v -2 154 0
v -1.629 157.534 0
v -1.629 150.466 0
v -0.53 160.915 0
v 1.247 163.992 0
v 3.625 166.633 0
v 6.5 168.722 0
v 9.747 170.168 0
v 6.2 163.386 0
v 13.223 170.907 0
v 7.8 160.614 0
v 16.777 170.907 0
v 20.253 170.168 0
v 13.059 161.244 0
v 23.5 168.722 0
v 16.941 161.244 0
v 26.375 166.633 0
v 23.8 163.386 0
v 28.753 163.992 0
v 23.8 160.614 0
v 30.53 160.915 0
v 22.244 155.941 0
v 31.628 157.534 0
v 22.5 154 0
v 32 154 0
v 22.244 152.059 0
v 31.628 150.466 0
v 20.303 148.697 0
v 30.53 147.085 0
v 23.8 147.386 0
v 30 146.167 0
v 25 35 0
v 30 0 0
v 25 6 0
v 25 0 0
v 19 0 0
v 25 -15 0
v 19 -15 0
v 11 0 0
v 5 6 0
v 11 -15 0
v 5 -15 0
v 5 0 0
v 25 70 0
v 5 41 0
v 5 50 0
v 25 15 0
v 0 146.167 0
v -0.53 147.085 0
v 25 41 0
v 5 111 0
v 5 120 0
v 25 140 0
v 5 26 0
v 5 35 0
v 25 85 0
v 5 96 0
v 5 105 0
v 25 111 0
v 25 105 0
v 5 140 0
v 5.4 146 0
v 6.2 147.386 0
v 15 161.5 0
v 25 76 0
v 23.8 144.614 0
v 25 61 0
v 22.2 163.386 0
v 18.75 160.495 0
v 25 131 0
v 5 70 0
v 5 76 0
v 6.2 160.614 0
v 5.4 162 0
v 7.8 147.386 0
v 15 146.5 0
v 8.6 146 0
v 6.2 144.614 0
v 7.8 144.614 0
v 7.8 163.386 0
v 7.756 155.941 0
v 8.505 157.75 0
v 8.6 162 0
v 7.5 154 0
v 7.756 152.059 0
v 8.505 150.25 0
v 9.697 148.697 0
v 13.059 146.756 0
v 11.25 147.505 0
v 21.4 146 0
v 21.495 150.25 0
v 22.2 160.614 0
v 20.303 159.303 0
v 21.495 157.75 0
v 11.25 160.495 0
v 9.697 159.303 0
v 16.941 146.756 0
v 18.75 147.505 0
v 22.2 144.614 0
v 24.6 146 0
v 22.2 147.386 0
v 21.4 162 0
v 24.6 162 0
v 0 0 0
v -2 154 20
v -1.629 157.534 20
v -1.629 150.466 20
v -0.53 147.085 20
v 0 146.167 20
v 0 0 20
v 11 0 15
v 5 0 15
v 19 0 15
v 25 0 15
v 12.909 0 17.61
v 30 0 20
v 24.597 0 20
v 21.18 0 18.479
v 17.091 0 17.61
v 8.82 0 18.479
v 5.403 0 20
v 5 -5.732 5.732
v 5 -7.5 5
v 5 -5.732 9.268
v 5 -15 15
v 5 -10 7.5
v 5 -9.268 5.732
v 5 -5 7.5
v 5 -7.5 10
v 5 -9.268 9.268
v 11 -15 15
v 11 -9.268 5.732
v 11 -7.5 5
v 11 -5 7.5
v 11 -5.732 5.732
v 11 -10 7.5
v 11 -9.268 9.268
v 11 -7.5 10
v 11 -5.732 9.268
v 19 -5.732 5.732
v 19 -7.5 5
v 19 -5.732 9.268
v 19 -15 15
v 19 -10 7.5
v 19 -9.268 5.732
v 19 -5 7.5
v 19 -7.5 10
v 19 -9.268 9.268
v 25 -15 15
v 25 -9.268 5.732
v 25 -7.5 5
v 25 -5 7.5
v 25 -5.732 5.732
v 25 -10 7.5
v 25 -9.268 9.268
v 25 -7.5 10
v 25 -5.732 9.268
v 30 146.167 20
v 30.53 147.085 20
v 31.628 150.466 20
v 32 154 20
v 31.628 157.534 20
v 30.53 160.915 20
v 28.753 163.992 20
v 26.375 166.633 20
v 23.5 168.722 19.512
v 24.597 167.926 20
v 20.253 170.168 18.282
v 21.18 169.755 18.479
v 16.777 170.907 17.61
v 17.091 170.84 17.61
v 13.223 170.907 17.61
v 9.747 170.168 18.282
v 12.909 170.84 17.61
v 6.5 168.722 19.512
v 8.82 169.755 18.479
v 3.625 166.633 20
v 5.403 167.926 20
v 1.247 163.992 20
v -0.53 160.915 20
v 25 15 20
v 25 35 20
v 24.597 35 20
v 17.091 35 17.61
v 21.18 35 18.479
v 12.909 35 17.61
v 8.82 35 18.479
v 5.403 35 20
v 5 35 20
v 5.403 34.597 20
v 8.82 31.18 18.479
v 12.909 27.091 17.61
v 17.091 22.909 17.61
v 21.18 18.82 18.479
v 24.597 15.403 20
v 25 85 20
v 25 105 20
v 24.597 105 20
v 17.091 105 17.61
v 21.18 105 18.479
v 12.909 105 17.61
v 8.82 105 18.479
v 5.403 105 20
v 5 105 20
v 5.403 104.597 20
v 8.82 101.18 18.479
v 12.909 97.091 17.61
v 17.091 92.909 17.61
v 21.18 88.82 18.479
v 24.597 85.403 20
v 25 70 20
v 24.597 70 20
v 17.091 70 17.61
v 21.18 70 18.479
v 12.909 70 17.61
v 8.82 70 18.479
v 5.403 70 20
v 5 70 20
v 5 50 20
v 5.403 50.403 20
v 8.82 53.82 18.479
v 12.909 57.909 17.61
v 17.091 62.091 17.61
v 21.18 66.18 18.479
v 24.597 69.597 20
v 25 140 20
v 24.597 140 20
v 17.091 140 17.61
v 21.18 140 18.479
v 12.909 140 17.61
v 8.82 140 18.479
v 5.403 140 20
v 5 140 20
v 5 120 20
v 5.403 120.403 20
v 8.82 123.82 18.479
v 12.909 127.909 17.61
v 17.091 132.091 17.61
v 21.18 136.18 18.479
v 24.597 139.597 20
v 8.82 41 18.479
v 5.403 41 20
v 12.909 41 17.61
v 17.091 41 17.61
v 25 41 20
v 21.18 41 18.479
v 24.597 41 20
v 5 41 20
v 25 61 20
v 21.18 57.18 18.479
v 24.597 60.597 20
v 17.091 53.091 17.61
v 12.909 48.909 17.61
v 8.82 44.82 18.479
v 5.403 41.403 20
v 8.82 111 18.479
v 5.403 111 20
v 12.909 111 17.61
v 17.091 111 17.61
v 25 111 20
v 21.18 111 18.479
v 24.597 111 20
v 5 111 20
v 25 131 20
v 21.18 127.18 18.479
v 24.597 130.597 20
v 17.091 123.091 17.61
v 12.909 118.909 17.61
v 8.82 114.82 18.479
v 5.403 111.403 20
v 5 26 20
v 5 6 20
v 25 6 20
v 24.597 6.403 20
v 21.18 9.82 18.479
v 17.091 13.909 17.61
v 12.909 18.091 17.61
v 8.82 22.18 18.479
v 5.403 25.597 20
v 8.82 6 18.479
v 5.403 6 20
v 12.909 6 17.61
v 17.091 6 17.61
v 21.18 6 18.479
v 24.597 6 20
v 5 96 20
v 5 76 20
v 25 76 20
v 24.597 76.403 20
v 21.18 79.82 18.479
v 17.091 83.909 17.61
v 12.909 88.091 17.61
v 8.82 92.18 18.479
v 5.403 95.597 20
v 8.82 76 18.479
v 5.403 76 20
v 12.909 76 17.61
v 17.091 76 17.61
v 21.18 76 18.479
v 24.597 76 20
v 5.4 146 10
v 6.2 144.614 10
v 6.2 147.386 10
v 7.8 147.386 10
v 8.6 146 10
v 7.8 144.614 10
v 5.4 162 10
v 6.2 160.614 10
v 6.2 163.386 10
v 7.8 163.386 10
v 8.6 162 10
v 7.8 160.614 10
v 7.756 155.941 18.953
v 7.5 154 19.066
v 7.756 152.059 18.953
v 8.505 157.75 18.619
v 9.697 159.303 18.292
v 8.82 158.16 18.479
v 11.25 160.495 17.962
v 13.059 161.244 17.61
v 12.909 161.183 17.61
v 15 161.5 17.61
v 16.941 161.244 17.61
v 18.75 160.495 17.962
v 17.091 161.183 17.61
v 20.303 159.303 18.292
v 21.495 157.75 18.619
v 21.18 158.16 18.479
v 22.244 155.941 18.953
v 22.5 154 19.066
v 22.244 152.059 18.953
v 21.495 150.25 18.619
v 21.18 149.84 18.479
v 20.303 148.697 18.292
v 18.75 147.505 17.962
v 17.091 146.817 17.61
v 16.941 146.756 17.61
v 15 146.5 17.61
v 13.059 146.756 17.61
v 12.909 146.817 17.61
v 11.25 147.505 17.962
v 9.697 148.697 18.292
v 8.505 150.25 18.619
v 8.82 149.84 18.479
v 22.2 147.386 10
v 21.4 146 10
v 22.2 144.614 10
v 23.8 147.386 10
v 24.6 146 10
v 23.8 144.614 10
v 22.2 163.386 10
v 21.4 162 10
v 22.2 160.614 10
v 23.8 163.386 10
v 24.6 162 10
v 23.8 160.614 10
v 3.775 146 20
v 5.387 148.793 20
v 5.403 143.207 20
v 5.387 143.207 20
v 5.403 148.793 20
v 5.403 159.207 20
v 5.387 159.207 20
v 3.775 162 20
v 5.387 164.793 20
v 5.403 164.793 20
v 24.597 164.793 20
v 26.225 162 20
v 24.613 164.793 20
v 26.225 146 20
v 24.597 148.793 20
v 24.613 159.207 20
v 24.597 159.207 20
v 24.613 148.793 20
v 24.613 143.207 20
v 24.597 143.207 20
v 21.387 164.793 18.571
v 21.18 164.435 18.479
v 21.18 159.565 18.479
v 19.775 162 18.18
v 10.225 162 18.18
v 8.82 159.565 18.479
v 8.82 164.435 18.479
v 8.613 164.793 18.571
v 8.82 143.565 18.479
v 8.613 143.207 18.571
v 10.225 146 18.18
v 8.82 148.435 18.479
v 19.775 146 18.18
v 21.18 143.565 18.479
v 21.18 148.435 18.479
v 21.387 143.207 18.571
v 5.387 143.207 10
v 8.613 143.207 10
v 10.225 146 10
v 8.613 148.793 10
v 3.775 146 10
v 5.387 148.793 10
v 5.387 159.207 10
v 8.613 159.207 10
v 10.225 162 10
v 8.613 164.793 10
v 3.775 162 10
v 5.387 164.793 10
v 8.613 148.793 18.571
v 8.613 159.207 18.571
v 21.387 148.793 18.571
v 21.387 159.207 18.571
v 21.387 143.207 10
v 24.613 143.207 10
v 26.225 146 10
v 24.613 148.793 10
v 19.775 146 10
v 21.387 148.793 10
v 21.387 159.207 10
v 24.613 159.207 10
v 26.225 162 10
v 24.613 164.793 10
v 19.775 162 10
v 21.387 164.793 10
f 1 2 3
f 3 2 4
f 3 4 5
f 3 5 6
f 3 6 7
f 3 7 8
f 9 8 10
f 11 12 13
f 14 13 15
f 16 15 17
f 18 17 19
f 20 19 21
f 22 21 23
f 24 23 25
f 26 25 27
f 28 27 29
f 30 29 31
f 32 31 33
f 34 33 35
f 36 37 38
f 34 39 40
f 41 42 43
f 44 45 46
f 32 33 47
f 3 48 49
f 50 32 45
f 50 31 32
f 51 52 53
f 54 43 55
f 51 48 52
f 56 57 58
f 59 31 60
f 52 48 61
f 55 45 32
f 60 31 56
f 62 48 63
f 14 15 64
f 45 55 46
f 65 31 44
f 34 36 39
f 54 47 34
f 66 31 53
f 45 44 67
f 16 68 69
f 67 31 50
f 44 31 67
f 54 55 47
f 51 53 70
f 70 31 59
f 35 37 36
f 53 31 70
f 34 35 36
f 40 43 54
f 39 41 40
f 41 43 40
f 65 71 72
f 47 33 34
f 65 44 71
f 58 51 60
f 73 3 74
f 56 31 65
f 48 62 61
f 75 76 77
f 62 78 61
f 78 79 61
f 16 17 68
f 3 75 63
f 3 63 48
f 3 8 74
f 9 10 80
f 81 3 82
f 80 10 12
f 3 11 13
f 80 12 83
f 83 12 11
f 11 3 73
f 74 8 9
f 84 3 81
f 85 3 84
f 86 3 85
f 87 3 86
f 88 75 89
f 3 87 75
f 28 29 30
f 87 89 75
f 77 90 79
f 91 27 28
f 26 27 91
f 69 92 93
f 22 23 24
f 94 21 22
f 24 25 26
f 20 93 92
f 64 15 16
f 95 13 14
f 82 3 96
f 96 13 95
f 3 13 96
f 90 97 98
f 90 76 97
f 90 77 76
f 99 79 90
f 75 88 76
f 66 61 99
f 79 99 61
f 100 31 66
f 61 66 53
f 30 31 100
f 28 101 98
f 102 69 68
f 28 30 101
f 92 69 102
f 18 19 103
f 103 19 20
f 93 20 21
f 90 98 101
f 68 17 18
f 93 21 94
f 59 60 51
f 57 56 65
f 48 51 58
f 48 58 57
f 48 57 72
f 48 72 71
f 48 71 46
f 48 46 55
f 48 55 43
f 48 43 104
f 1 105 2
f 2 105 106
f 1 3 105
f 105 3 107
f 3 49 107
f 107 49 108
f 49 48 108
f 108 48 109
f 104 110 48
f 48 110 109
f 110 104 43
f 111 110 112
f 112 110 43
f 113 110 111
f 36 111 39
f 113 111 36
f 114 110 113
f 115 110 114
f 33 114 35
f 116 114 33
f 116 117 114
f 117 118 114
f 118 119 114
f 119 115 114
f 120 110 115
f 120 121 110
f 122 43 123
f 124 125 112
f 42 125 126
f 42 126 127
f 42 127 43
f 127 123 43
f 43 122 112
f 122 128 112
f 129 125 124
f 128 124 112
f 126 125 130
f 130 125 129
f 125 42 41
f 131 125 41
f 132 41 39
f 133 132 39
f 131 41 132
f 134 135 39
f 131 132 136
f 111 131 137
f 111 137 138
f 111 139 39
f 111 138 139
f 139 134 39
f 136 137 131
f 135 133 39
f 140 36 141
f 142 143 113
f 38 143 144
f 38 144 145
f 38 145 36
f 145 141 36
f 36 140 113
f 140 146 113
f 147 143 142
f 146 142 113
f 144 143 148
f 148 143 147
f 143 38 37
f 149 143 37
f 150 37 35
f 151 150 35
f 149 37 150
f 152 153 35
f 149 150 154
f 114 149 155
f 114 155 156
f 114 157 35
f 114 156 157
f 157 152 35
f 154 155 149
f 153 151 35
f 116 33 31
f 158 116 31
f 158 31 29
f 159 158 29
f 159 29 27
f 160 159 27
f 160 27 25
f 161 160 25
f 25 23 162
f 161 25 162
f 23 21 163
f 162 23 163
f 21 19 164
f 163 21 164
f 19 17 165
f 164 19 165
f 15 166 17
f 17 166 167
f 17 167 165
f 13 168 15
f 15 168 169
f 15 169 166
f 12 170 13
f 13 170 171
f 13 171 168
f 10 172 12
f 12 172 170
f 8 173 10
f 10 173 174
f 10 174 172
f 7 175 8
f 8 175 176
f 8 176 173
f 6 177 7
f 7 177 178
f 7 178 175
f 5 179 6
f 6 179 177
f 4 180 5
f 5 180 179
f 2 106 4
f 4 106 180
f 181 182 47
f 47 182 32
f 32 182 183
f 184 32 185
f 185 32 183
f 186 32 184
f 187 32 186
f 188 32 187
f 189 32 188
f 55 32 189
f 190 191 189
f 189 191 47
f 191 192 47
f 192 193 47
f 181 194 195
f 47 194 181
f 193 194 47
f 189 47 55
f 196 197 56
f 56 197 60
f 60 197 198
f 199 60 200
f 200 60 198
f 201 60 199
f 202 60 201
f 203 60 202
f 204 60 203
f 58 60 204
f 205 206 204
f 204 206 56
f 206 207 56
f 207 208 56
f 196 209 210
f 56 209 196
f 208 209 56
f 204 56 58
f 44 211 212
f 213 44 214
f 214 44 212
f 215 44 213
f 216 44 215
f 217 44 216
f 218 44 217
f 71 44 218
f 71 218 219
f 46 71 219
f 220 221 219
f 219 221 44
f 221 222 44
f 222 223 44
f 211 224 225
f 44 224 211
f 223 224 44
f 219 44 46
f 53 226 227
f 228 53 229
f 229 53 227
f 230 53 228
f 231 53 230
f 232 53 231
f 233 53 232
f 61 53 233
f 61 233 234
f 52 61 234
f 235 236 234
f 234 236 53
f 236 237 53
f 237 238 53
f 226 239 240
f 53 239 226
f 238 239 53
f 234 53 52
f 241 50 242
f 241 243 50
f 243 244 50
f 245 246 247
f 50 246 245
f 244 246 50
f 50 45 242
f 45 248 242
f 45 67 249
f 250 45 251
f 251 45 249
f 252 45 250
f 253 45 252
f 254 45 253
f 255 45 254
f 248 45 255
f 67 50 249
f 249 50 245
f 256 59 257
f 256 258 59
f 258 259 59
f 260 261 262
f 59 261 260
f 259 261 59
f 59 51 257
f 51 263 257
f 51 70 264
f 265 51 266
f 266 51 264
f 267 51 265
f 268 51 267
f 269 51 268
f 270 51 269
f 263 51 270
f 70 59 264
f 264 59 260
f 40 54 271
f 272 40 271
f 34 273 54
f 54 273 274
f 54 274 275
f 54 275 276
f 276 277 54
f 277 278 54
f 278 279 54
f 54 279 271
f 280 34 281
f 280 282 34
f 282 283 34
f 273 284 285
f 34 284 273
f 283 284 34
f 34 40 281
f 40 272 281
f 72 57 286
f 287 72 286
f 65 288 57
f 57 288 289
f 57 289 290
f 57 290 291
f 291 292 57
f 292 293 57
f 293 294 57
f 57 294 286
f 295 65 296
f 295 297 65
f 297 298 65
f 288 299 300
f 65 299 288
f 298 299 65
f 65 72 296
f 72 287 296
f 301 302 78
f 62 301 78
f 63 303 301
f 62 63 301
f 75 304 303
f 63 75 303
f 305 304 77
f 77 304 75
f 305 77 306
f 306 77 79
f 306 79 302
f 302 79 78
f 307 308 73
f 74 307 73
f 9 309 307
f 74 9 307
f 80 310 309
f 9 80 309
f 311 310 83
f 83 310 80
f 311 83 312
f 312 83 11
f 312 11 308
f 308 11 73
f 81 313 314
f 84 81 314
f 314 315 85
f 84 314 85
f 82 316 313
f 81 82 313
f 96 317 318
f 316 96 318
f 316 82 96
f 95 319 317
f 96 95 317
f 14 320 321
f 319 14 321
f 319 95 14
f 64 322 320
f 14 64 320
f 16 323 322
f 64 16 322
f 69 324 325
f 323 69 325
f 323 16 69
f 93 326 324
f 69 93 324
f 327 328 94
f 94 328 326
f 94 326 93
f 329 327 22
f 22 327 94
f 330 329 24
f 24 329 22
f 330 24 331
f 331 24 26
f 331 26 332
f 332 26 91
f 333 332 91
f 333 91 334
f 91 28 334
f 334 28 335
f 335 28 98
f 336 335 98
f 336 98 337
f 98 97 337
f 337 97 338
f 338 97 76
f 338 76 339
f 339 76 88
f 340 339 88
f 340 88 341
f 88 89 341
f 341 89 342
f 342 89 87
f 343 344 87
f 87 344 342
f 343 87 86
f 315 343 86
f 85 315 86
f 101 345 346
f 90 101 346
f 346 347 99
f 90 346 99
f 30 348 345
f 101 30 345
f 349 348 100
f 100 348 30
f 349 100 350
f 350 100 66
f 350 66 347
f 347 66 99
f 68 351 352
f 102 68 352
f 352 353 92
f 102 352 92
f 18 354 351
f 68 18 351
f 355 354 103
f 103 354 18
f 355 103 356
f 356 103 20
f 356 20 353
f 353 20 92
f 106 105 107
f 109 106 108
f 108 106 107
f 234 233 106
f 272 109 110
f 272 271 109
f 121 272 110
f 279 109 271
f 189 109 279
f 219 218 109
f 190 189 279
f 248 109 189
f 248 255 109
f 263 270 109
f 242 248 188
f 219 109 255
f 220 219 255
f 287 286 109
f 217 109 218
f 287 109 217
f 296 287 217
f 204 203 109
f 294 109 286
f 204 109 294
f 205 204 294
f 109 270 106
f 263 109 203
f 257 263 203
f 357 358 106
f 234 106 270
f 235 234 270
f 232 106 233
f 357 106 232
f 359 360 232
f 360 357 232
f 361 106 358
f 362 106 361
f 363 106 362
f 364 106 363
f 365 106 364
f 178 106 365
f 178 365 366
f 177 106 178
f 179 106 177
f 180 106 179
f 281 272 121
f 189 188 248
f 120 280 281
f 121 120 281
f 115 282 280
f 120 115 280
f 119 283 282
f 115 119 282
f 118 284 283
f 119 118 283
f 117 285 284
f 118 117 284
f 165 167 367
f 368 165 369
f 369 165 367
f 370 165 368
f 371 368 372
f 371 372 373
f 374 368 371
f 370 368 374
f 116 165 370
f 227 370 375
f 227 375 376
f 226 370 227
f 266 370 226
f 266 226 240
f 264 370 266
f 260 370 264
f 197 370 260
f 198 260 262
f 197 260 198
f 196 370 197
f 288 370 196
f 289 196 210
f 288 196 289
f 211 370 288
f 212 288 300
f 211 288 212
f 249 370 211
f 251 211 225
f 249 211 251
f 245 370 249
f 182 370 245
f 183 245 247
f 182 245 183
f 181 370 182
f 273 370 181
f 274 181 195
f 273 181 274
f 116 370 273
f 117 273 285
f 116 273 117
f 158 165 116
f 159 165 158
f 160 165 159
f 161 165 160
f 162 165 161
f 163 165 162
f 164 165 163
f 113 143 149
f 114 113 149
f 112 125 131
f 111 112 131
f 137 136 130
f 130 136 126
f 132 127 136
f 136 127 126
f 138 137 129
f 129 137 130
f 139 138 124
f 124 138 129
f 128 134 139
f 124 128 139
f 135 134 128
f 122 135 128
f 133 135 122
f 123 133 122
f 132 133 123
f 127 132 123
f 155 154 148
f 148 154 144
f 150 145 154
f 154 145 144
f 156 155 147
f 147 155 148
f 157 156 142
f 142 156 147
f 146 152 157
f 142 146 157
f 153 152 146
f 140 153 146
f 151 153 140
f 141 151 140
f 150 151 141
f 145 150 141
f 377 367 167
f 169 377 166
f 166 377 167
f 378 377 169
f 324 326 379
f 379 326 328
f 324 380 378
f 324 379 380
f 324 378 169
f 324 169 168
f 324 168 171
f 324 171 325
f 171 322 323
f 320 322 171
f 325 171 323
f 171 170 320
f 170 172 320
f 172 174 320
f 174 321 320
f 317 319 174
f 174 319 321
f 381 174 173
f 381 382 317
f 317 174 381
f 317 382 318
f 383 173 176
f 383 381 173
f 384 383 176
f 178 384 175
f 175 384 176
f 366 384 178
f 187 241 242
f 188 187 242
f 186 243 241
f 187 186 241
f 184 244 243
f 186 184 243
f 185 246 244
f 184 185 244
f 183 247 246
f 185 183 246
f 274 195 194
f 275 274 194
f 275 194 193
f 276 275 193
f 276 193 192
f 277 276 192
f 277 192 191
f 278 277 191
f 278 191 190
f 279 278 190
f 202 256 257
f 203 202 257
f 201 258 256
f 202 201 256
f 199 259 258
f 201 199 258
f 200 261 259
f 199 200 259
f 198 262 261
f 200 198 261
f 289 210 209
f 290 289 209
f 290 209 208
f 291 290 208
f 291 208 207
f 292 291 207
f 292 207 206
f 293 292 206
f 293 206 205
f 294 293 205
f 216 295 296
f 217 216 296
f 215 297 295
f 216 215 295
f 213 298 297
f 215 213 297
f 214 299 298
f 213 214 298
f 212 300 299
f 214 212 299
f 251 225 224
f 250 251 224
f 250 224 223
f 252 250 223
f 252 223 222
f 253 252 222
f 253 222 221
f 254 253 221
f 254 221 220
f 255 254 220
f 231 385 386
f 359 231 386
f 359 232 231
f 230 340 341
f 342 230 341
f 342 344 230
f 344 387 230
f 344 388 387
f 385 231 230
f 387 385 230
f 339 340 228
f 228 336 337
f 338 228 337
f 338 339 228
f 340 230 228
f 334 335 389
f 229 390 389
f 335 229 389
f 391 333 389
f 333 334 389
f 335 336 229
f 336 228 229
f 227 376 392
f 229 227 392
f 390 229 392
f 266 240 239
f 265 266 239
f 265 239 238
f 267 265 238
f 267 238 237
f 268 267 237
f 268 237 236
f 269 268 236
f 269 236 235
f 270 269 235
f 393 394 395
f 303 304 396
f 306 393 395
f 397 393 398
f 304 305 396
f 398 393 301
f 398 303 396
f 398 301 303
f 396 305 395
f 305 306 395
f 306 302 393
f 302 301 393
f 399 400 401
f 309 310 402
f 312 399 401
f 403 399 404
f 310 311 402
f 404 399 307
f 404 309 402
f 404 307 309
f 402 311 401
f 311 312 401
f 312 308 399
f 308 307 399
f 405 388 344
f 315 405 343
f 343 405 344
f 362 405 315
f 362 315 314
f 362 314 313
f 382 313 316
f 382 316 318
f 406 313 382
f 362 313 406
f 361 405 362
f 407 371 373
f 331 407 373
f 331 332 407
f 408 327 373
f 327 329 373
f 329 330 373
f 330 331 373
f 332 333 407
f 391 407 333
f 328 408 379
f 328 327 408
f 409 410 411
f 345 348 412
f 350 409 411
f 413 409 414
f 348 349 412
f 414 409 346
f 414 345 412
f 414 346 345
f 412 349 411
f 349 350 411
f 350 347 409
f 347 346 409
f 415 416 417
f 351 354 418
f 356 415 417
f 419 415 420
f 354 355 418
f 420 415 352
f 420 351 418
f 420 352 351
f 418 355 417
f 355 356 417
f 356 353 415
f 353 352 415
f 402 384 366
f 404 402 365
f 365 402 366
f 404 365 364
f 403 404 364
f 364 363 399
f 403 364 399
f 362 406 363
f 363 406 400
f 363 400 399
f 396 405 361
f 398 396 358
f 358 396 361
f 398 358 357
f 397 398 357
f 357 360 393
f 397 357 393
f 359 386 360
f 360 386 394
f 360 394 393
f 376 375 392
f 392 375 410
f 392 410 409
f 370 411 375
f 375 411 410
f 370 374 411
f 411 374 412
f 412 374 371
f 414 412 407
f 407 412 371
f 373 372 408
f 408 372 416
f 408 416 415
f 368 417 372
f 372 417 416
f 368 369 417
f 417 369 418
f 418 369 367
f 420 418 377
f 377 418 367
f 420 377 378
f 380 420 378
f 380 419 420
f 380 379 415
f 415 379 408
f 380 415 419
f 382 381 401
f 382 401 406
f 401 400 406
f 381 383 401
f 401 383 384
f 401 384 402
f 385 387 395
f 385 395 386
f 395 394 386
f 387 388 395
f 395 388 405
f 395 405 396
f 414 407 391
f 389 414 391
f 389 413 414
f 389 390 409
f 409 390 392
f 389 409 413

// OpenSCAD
module prism(l, w, h) {
	translate([0, l, 0]) rotate( a= [90, 0, 0]) 
	linear_extrude(height = l) polygon(points = [
		[0, 0],
		[w, 0],
		[0, h]
	], paths=[[0,1,2,0]]);
}

difference() 
{
	union()
	{
		cube([30, 150, 20]);
		translate([15, 154, 0]) cylinder(r=34/2, h=20);
		translate([5, -15, 0]) cube([6,21,15]);
		translate([25-6, -15, 0]) cube([6,21,15]);
	}
      for (i = [0,1])
	{
		translate ([5, (i*70)+6, -0.5]) rotate([90, 0, 90]) prism(21,20,20);
		translate ([25, (i*70)+35, -0.5]) rotate([90, 0, -90]) prism(21,20,20);
		translate ([25, (i*70)+6+35, -0.5]) rotate([90, 0, 180]) prism(21,20,20);
		translate ([5, ((i+1)*70), -0.5]) rotate([90, 0, 0]) prism(21,20,20);
	}
	translate([15,-1,37.5]) rotate([-90,0,0]) cylinder(r=20, h=190);
	translate([0, -7.5, 7.5 ]) rotate([0, 90, 0]) cylinder(r=2.5, h=30);

	for (x = [0,1])
	{
		for (y = [0, 1])
		{
			translate([(x*16)+7, (y*16)+146, -0.1]) cylinder(r=1.6, h=40);
			translate([(x*16)+7, (y*16)+146, 10]) cylinder(r=5.5 / 2 / cos(180 / 6) + 0.05, h=20, $fn=6);
		}
	}
	
	translate([15, 154, -0.5]) cylinder(r=15/2, h=30);
}		
